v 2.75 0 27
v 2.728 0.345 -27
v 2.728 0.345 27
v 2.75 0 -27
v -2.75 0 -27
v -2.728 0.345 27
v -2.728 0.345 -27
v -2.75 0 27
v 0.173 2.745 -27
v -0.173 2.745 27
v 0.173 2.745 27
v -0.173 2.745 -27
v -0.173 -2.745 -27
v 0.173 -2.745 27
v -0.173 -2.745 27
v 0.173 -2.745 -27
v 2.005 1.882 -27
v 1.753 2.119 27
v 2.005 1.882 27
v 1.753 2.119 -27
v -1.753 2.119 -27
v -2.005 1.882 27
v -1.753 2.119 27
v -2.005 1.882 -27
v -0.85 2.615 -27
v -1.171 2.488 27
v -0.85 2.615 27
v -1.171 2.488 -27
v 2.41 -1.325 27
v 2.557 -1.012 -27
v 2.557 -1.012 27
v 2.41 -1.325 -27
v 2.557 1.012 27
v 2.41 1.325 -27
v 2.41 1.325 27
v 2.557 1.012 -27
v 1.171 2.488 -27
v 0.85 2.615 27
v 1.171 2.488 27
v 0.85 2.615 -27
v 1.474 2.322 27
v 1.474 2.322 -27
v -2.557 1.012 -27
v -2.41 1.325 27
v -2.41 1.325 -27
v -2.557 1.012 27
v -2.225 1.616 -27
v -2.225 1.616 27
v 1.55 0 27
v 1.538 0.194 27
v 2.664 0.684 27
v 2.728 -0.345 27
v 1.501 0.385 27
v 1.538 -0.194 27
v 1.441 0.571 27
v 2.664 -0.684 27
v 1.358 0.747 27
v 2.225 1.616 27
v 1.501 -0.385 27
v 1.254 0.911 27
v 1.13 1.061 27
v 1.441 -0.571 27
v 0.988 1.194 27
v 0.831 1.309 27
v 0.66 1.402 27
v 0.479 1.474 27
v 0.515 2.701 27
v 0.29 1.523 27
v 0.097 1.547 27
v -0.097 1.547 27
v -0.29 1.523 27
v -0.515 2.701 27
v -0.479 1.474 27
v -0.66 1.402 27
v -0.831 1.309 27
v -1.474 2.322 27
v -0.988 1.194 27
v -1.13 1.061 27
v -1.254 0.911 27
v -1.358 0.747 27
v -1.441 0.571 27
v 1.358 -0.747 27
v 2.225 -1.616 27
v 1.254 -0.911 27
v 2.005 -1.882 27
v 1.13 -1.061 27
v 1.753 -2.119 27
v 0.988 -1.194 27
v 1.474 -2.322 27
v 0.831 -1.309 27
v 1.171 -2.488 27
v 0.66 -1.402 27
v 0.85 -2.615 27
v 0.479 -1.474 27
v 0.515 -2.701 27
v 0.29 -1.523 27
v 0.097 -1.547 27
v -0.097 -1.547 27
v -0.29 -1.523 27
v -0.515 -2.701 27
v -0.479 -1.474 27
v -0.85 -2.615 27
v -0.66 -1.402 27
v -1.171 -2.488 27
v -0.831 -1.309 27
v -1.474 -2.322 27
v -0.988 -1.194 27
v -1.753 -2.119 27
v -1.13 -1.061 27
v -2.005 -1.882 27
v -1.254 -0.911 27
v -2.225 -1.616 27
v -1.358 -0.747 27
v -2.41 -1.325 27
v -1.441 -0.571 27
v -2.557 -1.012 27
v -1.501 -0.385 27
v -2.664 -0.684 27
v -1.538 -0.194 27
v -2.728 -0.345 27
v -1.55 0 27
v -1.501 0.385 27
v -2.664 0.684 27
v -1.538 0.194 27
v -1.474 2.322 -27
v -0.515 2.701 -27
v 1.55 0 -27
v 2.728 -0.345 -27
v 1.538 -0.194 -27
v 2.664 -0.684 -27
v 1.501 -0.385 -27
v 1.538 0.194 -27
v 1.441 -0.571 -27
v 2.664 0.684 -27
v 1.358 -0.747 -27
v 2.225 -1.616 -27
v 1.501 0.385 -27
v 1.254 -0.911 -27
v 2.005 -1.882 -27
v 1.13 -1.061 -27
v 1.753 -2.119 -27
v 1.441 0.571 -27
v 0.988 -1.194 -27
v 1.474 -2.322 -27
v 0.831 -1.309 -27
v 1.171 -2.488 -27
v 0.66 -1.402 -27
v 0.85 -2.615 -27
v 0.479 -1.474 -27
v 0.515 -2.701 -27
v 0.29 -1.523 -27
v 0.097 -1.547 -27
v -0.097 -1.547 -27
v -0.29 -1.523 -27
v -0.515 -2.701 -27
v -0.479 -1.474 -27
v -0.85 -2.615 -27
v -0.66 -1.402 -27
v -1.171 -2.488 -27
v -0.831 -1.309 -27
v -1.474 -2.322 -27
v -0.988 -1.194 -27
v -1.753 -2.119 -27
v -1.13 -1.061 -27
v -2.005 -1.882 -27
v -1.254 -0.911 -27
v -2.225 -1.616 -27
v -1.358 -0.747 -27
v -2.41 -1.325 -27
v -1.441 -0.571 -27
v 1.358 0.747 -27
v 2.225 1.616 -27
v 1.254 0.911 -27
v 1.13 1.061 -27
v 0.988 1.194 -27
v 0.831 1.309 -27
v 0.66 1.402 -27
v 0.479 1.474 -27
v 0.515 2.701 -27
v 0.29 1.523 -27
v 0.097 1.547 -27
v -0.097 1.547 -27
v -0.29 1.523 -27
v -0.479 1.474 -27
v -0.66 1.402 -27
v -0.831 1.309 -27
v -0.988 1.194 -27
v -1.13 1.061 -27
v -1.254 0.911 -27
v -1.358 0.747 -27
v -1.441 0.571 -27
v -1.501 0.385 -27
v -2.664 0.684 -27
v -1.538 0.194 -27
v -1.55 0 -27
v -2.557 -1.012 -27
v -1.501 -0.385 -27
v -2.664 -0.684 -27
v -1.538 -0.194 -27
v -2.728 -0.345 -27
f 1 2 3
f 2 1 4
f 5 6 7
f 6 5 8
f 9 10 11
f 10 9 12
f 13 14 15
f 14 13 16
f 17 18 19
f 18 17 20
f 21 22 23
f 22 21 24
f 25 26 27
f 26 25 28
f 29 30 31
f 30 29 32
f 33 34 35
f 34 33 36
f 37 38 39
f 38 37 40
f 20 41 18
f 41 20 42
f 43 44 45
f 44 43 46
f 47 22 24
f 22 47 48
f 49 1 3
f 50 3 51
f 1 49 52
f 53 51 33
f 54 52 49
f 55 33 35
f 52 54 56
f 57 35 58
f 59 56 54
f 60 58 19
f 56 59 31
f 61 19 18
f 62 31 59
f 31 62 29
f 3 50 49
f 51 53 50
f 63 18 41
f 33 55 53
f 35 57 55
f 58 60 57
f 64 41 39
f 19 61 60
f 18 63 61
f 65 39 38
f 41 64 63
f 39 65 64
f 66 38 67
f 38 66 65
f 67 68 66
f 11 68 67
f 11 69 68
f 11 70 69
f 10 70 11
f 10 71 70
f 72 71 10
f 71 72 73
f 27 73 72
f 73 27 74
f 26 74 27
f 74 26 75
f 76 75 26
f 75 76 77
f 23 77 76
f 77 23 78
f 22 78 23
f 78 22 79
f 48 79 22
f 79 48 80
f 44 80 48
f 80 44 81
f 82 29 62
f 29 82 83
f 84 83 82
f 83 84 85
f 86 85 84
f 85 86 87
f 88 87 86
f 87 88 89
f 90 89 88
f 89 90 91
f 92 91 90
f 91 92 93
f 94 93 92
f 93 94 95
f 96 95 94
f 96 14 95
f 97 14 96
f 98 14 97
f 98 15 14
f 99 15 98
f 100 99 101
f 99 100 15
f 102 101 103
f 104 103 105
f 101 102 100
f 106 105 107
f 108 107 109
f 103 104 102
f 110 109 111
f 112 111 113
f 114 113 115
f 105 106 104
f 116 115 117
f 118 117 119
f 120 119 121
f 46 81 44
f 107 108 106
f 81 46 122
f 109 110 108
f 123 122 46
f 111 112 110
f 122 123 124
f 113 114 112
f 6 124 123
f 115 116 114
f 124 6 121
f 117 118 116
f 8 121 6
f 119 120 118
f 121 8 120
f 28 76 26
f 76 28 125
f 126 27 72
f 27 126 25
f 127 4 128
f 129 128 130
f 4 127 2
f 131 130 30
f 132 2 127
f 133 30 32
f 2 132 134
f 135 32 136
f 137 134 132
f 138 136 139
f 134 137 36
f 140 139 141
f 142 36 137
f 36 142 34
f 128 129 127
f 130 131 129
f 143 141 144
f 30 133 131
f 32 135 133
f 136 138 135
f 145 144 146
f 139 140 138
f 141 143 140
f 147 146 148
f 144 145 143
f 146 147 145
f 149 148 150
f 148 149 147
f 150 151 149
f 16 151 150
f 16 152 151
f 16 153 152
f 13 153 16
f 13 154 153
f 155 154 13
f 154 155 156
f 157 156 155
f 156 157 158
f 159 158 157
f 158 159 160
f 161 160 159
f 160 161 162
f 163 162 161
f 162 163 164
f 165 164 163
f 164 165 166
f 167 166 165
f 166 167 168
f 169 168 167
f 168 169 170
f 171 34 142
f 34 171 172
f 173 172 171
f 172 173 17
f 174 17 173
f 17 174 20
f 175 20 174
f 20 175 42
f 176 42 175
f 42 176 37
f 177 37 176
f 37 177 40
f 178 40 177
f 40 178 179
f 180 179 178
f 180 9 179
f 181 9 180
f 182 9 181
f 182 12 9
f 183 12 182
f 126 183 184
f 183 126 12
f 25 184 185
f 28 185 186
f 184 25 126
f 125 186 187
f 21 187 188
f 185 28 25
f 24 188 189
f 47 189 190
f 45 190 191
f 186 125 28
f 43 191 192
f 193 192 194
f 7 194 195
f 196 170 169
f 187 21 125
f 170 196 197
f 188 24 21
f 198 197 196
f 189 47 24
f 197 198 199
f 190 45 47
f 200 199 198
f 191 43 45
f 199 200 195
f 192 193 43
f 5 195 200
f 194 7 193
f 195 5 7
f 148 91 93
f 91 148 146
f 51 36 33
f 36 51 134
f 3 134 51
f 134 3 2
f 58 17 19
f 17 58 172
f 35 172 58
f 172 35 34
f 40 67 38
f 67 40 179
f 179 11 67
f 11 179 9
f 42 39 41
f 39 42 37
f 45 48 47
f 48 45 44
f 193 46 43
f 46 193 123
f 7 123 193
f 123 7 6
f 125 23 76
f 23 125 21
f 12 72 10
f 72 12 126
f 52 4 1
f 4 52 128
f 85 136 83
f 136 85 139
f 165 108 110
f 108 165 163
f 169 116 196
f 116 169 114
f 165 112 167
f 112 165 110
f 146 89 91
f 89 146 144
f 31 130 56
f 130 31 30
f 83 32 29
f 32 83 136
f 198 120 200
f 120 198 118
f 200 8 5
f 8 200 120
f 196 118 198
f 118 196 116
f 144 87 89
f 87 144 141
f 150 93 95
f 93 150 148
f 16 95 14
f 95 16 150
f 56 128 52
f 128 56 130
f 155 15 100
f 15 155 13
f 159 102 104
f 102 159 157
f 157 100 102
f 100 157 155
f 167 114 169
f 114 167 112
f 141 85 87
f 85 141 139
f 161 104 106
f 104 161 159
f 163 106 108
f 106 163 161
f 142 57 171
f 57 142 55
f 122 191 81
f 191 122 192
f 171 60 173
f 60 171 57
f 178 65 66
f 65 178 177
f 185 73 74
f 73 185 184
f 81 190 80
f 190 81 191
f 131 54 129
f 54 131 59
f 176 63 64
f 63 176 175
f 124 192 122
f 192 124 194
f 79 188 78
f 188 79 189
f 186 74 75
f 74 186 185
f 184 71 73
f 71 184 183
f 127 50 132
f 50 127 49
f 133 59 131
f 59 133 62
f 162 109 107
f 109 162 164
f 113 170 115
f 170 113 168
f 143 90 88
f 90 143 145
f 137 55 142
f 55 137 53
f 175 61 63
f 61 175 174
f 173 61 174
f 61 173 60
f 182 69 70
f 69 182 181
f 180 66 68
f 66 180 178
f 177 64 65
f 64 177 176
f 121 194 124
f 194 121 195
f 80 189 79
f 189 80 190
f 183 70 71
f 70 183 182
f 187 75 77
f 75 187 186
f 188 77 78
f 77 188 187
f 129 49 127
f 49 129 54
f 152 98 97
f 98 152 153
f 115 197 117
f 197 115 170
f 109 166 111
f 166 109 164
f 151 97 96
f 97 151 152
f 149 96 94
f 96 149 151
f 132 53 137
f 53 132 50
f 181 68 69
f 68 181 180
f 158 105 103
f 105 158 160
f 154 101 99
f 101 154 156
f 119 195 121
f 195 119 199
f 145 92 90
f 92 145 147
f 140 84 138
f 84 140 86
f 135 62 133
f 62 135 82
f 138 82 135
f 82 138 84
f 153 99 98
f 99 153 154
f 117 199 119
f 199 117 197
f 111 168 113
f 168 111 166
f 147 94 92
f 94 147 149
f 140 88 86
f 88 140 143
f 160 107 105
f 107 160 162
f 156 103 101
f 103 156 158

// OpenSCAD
$fn = 50;


difference() {
	union() {
		translate(v = [0, 0, -27.0000000000]) {
			cylinder(h = 54, r = 2.7500000000);
		}
	}
	union() {
		translate(v = [0, 0, -100.0000000000]) {
			cylinder(h = 200, r = 1.5500000000);
		}
	}
}
